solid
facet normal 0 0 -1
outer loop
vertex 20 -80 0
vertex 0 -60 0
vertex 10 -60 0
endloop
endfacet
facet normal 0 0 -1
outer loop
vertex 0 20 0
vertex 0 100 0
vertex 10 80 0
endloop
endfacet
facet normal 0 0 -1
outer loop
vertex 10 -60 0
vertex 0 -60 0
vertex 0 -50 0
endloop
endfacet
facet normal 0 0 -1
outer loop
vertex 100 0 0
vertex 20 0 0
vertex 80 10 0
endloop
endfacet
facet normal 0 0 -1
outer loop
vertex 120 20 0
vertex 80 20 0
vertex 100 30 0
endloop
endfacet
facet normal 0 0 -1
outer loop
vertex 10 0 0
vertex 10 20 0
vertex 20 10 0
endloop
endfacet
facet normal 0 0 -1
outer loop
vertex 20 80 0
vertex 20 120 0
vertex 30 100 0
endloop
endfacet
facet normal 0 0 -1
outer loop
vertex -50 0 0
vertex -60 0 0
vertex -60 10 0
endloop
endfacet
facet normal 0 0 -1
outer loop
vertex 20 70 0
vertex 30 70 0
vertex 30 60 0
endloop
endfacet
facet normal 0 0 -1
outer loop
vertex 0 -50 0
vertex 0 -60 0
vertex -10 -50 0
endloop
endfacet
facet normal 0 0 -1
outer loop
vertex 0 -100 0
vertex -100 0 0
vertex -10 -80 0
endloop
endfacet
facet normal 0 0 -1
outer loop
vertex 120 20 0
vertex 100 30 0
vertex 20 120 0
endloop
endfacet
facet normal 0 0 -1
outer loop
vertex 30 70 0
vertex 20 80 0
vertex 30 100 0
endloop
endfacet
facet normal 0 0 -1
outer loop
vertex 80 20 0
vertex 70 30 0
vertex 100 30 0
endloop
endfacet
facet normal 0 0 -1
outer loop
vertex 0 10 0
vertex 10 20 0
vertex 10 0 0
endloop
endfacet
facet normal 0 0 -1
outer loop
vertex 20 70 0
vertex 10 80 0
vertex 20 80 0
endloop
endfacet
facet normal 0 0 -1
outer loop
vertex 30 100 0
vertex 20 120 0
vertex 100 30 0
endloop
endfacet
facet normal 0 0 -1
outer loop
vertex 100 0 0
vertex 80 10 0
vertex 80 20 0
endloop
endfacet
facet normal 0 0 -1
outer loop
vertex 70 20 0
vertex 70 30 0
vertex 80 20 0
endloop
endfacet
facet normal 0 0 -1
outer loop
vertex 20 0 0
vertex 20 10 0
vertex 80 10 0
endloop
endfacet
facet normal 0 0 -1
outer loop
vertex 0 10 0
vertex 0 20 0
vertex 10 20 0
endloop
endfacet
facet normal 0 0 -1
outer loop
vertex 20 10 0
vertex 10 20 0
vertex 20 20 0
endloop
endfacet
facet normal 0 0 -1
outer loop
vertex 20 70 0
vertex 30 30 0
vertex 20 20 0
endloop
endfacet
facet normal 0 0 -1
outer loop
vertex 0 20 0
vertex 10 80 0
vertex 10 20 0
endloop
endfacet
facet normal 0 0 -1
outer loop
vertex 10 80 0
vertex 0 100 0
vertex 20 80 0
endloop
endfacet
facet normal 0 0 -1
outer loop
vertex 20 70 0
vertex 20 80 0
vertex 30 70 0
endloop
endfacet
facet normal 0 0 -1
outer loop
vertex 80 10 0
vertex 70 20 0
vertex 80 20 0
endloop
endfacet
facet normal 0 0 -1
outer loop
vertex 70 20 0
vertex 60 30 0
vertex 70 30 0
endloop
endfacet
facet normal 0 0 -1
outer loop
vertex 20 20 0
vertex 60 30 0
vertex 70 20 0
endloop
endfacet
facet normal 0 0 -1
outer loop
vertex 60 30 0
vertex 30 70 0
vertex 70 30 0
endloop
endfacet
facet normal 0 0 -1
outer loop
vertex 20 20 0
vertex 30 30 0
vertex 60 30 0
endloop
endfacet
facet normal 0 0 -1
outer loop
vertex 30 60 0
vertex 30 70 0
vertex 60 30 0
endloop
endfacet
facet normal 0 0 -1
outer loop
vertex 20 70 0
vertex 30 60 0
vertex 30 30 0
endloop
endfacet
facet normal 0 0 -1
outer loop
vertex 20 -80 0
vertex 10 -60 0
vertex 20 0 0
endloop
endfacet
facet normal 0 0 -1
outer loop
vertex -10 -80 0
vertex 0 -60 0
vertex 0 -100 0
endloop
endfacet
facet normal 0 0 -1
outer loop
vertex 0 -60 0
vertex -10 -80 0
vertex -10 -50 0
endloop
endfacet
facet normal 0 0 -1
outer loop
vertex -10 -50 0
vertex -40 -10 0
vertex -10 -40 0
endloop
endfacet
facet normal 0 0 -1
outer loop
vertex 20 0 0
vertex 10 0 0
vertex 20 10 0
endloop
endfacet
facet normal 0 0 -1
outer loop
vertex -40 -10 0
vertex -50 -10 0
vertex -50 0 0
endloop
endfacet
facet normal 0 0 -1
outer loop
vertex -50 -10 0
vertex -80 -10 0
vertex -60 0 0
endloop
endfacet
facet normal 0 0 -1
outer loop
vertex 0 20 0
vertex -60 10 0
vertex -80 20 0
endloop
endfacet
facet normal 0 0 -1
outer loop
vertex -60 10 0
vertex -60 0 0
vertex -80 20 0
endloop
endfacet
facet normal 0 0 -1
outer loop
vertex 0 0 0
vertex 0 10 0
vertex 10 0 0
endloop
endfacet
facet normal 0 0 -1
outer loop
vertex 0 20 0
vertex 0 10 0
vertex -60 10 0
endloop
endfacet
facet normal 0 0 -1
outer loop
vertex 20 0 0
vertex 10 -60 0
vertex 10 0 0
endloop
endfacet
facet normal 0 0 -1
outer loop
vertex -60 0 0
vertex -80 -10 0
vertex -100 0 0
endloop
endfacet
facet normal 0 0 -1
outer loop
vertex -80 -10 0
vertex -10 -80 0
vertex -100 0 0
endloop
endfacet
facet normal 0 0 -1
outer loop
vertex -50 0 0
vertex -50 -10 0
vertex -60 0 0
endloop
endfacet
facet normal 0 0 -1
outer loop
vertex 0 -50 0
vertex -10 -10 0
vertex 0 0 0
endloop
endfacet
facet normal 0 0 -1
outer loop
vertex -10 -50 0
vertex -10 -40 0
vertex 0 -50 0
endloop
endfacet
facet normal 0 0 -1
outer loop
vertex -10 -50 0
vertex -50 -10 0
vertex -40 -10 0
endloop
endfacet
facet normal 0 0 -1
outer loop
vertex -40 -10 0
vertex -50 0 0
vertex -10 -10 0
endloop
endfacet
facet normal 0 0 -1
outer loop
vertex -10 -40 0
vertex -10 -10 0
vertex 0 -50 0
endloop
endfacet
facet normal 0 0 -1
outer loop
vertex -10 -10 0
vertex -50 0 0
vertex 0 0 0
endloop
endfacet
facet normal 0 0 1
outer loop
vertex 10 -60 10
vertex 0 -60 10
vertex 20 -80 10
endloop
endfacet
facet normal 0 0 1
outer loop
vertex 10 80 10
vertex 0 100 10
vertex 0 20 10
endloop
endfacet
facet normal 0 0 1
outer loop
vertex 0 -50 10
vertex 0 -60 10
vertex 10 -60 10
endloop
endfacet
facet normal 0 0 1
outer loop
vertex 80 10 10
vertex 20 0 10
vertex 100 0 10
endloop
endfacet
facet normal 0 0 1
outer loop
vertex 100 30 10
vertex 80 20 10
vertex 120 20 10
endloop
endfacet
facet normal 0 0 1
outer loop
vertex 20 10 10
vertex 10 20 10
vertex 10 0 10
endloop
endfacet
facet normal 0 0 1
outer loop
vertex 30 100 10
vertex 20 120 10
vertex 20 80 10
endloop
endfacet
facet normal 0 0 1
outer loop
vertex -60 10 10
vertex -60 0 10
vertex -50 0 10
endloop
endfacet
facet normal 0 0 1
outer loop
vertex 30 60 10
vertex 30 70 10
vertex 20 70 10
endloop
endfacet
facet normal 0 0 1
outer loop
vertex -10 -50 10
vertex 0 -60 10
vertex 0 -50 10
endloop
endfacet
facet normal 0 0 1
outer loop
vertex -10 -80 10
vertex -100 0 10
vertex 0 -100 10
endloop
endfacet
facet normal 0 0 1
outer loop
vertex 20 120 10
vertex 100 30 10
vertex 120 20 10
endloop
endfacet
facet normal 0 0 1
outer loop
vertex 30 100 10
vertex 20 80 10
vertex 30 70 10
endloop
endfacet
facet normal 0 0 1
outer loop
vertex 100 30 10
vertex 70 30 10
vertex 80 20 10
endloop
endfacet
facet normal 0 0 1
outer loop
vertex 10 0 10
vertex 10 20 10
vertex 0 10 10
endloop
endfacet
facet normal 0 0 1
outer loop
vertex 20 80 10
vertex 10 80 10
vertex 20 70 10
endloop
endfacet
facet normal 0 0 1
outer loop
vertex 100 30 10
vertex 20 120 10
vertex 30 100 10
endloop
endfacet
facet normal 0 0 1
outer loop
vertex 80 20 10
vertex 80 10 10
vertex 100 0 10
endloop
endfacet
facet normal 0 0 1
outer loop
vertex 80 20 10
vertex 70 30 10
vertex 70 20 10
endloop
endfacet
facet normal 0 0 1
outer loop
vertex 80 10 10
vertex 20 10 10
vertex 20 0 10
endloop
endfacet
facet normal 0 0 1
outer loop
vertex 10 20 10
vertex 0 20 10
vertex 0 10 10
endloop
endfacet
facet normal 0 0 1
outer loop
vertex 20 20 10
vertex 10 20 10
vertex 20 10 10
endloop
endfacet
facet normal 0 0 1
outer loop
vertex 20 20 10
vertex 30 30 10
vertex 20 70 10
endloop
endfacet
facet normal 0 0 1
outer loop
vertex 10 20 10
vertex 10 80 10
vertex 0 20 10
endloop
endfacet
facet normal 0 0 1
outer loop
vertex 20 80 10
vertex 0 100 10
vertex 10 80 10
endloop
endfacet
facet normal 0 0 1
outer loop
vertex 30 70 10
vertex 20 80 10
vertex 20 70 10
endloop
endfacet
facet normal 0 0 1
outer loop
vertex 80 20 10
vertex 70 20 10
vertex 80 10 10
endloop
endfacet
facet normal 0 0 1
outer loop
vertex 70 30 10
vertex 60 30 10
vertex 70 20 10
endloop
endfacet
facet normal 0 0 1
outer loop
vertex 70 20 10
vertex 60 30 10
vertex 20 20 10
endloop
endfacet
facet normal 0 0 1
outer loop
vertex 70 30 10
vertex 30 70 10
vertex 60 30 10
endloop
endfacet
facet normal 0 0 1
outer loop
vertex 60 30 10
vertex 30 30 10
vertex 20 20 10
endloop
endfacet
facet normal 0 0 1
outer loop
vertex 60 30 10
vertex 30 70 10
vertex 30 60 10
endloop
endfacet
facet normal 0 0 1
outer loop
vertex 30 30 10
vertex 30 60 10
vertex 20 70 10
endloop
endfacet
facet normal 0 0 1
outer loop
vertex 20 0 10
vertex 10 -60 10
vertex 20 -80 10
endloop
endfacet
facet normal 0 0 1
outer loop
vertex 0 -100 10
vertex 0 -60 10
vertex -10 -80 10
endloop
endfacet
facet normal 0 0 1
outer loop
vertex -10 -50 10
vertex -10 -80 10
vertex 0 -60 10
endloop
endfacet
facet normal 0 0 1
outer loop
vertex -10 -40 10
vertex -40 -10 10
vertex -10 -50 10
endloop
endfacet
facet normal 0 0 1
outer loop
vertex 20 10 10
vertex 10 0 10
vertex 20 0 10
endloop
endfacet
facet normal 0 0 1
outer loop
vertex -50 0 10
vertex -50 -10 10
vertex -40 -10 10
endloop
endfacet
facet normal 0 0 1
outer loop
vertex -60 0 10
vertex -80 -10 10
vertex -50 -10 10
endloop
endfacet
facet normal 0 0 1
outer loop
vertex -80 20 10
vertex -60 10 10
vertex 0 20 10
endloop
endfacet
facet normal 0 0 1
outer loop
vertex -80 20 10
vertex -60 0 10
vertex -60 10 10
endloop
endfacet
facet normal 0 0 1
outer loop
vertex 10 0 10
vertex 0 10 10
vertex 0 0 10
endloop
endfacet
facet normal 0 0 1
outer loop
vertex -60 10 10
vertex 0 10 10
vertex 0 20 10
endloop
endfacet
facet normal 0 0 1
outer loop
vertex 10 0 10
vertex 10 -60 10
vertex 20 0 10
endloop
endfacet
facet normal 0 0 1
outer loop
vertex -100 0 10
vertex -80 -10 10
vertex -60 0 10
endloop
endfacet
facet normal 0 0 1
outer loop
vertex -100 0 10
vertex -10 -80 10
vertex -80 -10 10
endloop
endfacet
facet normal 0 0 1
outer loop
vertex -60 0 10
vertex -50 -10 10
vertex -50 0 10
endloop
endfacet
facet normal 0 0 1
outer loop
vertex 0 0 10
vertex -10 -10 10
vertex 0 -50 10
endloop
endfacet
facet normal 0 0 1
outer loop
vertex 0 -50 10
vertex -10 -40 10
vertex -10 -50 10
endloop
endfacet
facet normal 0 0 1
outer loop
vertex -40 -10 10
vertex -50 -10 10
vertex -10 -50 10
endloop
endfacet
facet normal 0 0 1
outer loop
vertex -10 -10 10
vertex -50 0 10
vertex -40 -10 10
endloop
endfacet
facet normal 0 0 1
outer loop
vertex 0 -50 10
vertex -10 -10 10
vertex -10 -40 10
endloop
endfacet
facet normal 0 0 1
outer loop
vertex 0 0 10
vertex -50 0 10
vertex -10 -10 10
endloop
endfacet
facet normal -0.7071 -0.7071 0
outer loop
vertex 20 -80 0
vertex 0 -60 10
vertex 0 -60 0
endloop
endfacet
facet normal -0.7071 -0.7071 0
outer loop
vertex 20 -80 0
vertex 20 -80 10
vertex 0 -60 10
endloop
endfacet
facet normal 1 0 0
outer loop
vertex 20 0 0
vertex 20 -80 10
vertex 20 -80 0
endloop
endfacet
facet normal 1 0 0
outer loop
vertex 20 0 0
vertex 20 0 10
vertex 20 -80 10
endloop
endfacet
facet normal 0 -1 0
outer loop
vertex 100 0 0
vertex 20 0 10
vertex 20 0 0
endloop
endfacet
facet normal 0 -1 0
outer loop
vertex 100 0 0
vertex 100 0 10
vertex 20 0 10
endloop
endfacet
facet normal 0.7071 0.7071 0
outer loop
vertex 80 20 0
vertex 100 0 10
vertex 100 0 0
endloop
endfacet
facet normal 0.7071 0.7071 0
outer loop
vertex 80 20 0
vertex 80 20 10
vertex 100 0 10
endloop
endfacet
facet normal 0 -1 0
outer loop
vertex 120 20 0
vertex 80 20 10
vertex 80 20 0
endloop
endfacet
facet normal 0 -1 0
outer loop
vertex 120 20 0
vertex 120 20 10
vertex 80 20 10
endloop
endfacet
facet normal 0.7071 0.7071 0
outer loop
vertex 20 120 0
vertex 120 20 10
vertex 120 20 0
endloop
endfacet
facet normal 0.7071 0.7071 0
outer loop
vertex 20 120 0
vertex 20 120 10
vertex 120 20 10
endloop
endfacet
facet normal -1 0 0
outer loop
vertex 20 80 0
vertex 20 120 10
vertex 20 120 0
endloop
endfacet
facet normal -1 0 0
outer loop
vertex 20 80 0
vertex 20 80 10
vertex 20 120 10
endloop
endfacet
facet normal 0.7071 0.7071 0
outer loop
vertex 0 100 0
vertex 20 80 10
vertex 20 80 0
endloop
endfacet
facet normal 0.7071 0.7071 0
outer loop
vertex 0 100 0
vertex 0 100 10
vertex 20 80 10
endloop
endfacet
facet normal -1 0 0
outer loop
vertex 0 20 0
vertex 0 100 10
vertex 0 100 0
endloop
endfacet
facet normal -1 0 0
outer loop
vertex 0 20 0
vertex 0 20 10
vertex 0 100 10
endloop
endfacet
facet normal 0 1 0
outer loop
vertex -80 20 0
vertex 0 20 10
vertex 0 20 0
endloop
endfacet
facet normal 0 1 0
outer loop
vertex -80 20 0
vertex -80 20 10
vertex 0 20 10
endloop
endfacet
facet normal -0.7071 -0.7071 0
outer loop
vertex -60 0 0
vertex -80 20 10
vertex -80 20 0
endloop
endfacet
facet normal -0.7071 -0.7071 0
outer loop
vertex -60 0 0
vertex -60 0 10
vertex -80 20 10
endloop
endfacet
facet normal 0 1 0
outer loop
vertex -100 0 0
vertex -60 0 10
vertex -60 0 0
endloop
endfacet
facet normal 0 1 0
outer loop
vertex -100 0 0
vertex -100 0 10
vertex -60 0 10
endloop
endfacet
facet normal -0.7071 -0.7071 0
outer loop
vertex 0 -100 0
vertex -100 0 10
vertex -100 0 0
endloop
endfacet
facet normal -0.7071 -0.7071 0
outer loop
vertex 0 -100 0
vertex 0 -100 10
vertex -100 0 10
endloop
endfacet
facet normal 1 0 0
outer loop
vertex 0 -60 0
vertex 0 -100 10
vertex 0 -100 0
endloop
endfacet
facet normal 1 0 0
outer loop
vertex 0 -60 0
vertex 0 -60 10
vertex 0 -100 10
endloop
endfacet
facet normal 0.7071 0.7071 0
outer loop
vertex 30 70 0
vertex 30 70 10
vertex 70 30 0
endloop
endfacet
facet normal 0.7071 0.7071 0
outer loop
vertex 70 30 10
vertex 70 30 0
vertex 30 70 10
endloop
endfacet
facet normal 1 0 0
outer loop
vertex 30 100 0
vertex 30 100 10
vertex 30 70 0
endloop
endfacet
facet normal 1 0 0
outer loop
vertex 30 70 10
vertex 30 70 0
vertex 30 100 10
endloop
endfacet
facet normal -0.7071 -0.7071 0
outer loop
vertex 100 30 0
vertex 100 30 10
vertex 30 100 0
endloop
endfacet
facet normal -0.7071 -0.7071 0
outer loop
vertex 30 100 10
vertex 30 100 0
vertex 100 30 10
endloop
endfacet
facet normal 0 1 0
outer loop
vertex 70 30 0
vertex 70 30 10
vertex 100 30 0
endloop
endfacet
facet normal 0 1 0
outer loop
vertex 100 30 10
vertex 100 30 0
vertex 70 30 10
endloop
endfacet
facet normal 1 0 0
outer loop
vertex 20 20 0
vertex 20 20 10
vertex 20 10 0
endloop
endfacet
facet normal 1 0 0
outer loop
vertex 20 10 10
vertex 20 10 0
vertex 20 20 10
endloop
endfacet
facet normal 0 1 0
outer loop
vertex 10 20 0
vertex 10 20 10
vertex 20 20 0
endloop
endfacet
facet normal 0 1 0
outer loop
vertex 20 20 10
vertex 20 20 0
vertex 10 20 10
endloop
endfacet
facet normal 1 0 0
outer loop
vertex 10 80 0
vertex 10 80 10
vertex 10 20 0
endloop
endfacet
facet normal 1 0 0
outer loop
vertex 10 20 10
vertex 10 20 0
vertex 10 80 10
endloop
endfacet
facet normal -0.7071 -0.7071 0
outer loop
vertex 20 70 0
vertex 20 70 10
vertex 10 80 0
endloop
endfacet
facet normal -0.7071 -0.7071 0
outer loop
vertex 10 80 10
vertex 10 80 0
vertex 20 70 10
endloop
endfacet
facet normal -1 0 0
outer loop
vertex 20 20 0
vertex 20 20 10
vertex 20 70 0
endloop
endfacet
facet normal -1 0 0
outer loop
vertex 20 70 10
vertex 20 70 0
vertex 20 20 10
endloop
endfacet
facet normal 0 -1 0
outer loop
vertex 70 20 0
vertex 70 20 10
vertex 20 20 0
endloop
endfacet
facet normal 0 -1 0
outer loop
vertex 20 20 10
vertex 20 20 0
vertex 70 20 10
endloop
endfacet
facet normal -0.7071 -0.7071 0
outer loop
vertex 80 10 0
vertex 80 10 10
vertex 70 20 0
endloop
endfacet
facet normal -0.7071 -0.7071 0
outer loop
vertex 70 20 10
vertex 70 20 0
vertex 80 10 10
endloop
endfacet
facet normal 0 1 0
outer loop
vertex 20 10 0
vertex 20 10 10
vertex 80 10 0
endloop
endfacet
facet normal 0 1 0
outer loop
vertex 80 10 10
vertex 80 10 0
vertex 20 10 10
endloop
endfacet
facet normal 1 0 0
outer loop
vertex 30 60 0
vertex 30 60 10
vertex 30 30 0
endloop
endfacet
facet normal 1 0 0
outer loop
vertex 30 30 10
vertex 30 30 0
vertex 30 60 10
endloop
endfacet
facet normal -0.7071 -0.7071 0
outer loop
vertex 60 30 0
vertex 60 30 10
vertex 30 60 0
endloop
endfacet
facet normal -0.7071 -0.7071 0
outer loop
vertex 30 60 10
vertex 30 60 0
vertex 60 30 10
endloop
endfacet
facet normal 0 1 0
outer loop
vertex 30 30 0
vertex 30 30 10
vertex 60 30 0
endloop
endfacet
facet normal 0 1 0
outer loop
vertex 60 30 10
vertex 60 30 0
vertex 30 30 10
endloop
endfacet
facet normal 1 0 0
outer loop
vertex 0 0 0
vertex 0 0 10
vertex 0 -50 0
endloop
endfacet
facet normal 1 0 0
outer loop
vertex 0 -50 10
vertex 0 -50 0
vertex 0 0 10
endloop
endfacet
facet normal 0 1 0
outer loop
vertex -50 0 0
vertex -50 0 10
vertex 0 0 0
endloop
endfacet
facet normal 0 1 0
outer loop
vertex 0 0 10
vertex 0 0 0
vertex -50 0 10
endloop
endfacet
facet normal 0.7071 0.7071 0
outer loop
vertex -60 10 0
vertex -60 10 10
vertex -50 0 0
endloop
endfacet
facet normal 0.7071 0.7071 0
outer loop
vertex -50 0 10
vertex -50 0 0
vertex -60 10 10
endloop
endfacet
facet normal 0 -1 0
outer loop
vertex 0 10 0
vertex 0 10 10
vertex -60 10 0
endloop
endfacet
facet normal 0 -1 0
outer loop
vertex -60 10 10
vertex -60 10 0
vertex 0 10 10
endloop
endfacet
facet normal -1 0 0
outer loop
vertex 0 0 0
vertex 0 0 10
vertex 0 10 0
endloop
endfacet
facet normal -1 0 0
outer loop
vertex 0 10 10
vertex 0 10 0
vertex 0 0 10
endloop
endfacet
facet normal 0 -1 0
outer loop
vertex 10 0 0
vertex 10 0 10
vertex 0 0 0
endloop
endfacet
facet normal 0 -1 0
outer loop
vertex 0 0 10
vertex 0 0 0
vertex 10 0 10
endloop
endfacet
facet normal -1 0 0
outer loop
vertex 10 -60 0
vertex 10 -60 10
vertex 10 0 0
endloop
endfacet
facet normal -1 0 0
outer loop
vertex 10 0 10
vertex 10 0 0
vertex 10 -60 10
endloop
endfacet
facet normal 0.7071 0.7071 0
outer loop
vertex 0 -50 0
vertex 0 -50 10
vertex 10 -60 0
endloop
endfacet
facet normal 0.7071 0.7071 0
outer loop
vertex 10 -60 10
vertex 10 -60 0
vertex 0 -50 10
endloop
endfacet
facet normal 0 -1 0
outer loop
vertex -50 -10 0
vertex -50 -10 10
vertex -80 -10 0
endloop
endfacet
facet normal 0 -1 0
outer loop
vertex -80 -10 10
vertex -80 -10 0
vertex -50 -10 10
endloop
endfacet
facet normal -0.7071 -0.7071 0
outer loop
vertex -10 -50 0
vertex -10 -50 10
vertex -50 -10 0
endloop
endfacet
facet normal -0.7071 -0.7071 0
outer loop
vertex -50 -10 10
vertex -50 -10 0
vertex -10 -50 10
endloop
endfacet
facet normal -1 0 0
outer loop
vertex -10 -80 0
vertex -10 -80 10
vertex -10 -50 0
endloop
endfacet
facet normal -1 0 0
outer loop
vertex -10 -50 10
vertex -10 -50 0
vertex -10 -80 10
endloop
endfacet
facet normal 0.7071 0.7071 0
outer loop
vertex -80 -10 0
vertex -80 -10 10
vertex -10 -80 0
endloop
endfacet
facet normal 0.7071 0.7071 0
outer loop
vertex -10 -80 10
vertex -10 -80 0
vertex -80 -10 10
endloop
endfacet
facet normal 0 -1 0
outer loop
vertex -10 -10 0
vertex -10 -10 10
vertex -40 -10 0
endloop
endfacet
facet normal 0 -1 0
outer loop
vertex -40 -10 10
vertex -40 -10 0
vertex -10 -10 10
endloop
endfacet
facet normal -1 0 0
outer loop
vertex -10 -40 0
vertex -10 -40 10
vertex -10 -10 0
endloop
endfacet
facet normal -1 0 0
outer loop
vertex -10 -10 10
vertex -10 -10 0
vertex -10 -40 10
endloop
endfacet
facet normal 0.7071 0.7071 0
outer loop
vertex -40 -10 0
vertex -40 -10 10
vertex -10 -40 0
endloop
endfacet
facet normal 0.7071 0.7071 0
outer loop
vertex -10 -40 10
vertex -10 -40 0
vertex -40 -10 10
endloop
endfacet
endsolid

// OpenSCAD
/* Alchemy symbol
This project was a test to see if I could, seeing a simple geometric design, manage to replicate it with openscad code.
*/

 linear_extrude(height=10){
 triangle_points =[[0,0],[100,0],[0,100],[10,10],[80,10],[10,80]];
 triangle_paths =[[0,1,2],[3,4,5]];
 polygon(triangle_points,triangle_paths,10);
 
 mirror([1,1,0]){
  triangle_points =[[0,0],[100,0],[0,100],[10,10],[80,10],[10,80]];
 triangle_paths =[[0,1,2],[3,4,5]];
 polygon(triangle_points,triangle_paths,10);}
 
 translate([20,20,0]){
  triangle_points =[[0,0],[100,0],[0,100],[10,10],[80,10],[10,80]];
 triangle_paths =[[0,1,2],[3,4,5]];
 polygon(triangle_points,triangle_paths,10);
 
 mirror([1,1,0]){
  triangle_points =[[0,0],[100,0],[0,100],[10,10],[80,10],[10,80]];
 triangle_paths =[[0,1,2],[3,4,5]];
 polygon(triangle_points,triangle_paths,10);}}}
